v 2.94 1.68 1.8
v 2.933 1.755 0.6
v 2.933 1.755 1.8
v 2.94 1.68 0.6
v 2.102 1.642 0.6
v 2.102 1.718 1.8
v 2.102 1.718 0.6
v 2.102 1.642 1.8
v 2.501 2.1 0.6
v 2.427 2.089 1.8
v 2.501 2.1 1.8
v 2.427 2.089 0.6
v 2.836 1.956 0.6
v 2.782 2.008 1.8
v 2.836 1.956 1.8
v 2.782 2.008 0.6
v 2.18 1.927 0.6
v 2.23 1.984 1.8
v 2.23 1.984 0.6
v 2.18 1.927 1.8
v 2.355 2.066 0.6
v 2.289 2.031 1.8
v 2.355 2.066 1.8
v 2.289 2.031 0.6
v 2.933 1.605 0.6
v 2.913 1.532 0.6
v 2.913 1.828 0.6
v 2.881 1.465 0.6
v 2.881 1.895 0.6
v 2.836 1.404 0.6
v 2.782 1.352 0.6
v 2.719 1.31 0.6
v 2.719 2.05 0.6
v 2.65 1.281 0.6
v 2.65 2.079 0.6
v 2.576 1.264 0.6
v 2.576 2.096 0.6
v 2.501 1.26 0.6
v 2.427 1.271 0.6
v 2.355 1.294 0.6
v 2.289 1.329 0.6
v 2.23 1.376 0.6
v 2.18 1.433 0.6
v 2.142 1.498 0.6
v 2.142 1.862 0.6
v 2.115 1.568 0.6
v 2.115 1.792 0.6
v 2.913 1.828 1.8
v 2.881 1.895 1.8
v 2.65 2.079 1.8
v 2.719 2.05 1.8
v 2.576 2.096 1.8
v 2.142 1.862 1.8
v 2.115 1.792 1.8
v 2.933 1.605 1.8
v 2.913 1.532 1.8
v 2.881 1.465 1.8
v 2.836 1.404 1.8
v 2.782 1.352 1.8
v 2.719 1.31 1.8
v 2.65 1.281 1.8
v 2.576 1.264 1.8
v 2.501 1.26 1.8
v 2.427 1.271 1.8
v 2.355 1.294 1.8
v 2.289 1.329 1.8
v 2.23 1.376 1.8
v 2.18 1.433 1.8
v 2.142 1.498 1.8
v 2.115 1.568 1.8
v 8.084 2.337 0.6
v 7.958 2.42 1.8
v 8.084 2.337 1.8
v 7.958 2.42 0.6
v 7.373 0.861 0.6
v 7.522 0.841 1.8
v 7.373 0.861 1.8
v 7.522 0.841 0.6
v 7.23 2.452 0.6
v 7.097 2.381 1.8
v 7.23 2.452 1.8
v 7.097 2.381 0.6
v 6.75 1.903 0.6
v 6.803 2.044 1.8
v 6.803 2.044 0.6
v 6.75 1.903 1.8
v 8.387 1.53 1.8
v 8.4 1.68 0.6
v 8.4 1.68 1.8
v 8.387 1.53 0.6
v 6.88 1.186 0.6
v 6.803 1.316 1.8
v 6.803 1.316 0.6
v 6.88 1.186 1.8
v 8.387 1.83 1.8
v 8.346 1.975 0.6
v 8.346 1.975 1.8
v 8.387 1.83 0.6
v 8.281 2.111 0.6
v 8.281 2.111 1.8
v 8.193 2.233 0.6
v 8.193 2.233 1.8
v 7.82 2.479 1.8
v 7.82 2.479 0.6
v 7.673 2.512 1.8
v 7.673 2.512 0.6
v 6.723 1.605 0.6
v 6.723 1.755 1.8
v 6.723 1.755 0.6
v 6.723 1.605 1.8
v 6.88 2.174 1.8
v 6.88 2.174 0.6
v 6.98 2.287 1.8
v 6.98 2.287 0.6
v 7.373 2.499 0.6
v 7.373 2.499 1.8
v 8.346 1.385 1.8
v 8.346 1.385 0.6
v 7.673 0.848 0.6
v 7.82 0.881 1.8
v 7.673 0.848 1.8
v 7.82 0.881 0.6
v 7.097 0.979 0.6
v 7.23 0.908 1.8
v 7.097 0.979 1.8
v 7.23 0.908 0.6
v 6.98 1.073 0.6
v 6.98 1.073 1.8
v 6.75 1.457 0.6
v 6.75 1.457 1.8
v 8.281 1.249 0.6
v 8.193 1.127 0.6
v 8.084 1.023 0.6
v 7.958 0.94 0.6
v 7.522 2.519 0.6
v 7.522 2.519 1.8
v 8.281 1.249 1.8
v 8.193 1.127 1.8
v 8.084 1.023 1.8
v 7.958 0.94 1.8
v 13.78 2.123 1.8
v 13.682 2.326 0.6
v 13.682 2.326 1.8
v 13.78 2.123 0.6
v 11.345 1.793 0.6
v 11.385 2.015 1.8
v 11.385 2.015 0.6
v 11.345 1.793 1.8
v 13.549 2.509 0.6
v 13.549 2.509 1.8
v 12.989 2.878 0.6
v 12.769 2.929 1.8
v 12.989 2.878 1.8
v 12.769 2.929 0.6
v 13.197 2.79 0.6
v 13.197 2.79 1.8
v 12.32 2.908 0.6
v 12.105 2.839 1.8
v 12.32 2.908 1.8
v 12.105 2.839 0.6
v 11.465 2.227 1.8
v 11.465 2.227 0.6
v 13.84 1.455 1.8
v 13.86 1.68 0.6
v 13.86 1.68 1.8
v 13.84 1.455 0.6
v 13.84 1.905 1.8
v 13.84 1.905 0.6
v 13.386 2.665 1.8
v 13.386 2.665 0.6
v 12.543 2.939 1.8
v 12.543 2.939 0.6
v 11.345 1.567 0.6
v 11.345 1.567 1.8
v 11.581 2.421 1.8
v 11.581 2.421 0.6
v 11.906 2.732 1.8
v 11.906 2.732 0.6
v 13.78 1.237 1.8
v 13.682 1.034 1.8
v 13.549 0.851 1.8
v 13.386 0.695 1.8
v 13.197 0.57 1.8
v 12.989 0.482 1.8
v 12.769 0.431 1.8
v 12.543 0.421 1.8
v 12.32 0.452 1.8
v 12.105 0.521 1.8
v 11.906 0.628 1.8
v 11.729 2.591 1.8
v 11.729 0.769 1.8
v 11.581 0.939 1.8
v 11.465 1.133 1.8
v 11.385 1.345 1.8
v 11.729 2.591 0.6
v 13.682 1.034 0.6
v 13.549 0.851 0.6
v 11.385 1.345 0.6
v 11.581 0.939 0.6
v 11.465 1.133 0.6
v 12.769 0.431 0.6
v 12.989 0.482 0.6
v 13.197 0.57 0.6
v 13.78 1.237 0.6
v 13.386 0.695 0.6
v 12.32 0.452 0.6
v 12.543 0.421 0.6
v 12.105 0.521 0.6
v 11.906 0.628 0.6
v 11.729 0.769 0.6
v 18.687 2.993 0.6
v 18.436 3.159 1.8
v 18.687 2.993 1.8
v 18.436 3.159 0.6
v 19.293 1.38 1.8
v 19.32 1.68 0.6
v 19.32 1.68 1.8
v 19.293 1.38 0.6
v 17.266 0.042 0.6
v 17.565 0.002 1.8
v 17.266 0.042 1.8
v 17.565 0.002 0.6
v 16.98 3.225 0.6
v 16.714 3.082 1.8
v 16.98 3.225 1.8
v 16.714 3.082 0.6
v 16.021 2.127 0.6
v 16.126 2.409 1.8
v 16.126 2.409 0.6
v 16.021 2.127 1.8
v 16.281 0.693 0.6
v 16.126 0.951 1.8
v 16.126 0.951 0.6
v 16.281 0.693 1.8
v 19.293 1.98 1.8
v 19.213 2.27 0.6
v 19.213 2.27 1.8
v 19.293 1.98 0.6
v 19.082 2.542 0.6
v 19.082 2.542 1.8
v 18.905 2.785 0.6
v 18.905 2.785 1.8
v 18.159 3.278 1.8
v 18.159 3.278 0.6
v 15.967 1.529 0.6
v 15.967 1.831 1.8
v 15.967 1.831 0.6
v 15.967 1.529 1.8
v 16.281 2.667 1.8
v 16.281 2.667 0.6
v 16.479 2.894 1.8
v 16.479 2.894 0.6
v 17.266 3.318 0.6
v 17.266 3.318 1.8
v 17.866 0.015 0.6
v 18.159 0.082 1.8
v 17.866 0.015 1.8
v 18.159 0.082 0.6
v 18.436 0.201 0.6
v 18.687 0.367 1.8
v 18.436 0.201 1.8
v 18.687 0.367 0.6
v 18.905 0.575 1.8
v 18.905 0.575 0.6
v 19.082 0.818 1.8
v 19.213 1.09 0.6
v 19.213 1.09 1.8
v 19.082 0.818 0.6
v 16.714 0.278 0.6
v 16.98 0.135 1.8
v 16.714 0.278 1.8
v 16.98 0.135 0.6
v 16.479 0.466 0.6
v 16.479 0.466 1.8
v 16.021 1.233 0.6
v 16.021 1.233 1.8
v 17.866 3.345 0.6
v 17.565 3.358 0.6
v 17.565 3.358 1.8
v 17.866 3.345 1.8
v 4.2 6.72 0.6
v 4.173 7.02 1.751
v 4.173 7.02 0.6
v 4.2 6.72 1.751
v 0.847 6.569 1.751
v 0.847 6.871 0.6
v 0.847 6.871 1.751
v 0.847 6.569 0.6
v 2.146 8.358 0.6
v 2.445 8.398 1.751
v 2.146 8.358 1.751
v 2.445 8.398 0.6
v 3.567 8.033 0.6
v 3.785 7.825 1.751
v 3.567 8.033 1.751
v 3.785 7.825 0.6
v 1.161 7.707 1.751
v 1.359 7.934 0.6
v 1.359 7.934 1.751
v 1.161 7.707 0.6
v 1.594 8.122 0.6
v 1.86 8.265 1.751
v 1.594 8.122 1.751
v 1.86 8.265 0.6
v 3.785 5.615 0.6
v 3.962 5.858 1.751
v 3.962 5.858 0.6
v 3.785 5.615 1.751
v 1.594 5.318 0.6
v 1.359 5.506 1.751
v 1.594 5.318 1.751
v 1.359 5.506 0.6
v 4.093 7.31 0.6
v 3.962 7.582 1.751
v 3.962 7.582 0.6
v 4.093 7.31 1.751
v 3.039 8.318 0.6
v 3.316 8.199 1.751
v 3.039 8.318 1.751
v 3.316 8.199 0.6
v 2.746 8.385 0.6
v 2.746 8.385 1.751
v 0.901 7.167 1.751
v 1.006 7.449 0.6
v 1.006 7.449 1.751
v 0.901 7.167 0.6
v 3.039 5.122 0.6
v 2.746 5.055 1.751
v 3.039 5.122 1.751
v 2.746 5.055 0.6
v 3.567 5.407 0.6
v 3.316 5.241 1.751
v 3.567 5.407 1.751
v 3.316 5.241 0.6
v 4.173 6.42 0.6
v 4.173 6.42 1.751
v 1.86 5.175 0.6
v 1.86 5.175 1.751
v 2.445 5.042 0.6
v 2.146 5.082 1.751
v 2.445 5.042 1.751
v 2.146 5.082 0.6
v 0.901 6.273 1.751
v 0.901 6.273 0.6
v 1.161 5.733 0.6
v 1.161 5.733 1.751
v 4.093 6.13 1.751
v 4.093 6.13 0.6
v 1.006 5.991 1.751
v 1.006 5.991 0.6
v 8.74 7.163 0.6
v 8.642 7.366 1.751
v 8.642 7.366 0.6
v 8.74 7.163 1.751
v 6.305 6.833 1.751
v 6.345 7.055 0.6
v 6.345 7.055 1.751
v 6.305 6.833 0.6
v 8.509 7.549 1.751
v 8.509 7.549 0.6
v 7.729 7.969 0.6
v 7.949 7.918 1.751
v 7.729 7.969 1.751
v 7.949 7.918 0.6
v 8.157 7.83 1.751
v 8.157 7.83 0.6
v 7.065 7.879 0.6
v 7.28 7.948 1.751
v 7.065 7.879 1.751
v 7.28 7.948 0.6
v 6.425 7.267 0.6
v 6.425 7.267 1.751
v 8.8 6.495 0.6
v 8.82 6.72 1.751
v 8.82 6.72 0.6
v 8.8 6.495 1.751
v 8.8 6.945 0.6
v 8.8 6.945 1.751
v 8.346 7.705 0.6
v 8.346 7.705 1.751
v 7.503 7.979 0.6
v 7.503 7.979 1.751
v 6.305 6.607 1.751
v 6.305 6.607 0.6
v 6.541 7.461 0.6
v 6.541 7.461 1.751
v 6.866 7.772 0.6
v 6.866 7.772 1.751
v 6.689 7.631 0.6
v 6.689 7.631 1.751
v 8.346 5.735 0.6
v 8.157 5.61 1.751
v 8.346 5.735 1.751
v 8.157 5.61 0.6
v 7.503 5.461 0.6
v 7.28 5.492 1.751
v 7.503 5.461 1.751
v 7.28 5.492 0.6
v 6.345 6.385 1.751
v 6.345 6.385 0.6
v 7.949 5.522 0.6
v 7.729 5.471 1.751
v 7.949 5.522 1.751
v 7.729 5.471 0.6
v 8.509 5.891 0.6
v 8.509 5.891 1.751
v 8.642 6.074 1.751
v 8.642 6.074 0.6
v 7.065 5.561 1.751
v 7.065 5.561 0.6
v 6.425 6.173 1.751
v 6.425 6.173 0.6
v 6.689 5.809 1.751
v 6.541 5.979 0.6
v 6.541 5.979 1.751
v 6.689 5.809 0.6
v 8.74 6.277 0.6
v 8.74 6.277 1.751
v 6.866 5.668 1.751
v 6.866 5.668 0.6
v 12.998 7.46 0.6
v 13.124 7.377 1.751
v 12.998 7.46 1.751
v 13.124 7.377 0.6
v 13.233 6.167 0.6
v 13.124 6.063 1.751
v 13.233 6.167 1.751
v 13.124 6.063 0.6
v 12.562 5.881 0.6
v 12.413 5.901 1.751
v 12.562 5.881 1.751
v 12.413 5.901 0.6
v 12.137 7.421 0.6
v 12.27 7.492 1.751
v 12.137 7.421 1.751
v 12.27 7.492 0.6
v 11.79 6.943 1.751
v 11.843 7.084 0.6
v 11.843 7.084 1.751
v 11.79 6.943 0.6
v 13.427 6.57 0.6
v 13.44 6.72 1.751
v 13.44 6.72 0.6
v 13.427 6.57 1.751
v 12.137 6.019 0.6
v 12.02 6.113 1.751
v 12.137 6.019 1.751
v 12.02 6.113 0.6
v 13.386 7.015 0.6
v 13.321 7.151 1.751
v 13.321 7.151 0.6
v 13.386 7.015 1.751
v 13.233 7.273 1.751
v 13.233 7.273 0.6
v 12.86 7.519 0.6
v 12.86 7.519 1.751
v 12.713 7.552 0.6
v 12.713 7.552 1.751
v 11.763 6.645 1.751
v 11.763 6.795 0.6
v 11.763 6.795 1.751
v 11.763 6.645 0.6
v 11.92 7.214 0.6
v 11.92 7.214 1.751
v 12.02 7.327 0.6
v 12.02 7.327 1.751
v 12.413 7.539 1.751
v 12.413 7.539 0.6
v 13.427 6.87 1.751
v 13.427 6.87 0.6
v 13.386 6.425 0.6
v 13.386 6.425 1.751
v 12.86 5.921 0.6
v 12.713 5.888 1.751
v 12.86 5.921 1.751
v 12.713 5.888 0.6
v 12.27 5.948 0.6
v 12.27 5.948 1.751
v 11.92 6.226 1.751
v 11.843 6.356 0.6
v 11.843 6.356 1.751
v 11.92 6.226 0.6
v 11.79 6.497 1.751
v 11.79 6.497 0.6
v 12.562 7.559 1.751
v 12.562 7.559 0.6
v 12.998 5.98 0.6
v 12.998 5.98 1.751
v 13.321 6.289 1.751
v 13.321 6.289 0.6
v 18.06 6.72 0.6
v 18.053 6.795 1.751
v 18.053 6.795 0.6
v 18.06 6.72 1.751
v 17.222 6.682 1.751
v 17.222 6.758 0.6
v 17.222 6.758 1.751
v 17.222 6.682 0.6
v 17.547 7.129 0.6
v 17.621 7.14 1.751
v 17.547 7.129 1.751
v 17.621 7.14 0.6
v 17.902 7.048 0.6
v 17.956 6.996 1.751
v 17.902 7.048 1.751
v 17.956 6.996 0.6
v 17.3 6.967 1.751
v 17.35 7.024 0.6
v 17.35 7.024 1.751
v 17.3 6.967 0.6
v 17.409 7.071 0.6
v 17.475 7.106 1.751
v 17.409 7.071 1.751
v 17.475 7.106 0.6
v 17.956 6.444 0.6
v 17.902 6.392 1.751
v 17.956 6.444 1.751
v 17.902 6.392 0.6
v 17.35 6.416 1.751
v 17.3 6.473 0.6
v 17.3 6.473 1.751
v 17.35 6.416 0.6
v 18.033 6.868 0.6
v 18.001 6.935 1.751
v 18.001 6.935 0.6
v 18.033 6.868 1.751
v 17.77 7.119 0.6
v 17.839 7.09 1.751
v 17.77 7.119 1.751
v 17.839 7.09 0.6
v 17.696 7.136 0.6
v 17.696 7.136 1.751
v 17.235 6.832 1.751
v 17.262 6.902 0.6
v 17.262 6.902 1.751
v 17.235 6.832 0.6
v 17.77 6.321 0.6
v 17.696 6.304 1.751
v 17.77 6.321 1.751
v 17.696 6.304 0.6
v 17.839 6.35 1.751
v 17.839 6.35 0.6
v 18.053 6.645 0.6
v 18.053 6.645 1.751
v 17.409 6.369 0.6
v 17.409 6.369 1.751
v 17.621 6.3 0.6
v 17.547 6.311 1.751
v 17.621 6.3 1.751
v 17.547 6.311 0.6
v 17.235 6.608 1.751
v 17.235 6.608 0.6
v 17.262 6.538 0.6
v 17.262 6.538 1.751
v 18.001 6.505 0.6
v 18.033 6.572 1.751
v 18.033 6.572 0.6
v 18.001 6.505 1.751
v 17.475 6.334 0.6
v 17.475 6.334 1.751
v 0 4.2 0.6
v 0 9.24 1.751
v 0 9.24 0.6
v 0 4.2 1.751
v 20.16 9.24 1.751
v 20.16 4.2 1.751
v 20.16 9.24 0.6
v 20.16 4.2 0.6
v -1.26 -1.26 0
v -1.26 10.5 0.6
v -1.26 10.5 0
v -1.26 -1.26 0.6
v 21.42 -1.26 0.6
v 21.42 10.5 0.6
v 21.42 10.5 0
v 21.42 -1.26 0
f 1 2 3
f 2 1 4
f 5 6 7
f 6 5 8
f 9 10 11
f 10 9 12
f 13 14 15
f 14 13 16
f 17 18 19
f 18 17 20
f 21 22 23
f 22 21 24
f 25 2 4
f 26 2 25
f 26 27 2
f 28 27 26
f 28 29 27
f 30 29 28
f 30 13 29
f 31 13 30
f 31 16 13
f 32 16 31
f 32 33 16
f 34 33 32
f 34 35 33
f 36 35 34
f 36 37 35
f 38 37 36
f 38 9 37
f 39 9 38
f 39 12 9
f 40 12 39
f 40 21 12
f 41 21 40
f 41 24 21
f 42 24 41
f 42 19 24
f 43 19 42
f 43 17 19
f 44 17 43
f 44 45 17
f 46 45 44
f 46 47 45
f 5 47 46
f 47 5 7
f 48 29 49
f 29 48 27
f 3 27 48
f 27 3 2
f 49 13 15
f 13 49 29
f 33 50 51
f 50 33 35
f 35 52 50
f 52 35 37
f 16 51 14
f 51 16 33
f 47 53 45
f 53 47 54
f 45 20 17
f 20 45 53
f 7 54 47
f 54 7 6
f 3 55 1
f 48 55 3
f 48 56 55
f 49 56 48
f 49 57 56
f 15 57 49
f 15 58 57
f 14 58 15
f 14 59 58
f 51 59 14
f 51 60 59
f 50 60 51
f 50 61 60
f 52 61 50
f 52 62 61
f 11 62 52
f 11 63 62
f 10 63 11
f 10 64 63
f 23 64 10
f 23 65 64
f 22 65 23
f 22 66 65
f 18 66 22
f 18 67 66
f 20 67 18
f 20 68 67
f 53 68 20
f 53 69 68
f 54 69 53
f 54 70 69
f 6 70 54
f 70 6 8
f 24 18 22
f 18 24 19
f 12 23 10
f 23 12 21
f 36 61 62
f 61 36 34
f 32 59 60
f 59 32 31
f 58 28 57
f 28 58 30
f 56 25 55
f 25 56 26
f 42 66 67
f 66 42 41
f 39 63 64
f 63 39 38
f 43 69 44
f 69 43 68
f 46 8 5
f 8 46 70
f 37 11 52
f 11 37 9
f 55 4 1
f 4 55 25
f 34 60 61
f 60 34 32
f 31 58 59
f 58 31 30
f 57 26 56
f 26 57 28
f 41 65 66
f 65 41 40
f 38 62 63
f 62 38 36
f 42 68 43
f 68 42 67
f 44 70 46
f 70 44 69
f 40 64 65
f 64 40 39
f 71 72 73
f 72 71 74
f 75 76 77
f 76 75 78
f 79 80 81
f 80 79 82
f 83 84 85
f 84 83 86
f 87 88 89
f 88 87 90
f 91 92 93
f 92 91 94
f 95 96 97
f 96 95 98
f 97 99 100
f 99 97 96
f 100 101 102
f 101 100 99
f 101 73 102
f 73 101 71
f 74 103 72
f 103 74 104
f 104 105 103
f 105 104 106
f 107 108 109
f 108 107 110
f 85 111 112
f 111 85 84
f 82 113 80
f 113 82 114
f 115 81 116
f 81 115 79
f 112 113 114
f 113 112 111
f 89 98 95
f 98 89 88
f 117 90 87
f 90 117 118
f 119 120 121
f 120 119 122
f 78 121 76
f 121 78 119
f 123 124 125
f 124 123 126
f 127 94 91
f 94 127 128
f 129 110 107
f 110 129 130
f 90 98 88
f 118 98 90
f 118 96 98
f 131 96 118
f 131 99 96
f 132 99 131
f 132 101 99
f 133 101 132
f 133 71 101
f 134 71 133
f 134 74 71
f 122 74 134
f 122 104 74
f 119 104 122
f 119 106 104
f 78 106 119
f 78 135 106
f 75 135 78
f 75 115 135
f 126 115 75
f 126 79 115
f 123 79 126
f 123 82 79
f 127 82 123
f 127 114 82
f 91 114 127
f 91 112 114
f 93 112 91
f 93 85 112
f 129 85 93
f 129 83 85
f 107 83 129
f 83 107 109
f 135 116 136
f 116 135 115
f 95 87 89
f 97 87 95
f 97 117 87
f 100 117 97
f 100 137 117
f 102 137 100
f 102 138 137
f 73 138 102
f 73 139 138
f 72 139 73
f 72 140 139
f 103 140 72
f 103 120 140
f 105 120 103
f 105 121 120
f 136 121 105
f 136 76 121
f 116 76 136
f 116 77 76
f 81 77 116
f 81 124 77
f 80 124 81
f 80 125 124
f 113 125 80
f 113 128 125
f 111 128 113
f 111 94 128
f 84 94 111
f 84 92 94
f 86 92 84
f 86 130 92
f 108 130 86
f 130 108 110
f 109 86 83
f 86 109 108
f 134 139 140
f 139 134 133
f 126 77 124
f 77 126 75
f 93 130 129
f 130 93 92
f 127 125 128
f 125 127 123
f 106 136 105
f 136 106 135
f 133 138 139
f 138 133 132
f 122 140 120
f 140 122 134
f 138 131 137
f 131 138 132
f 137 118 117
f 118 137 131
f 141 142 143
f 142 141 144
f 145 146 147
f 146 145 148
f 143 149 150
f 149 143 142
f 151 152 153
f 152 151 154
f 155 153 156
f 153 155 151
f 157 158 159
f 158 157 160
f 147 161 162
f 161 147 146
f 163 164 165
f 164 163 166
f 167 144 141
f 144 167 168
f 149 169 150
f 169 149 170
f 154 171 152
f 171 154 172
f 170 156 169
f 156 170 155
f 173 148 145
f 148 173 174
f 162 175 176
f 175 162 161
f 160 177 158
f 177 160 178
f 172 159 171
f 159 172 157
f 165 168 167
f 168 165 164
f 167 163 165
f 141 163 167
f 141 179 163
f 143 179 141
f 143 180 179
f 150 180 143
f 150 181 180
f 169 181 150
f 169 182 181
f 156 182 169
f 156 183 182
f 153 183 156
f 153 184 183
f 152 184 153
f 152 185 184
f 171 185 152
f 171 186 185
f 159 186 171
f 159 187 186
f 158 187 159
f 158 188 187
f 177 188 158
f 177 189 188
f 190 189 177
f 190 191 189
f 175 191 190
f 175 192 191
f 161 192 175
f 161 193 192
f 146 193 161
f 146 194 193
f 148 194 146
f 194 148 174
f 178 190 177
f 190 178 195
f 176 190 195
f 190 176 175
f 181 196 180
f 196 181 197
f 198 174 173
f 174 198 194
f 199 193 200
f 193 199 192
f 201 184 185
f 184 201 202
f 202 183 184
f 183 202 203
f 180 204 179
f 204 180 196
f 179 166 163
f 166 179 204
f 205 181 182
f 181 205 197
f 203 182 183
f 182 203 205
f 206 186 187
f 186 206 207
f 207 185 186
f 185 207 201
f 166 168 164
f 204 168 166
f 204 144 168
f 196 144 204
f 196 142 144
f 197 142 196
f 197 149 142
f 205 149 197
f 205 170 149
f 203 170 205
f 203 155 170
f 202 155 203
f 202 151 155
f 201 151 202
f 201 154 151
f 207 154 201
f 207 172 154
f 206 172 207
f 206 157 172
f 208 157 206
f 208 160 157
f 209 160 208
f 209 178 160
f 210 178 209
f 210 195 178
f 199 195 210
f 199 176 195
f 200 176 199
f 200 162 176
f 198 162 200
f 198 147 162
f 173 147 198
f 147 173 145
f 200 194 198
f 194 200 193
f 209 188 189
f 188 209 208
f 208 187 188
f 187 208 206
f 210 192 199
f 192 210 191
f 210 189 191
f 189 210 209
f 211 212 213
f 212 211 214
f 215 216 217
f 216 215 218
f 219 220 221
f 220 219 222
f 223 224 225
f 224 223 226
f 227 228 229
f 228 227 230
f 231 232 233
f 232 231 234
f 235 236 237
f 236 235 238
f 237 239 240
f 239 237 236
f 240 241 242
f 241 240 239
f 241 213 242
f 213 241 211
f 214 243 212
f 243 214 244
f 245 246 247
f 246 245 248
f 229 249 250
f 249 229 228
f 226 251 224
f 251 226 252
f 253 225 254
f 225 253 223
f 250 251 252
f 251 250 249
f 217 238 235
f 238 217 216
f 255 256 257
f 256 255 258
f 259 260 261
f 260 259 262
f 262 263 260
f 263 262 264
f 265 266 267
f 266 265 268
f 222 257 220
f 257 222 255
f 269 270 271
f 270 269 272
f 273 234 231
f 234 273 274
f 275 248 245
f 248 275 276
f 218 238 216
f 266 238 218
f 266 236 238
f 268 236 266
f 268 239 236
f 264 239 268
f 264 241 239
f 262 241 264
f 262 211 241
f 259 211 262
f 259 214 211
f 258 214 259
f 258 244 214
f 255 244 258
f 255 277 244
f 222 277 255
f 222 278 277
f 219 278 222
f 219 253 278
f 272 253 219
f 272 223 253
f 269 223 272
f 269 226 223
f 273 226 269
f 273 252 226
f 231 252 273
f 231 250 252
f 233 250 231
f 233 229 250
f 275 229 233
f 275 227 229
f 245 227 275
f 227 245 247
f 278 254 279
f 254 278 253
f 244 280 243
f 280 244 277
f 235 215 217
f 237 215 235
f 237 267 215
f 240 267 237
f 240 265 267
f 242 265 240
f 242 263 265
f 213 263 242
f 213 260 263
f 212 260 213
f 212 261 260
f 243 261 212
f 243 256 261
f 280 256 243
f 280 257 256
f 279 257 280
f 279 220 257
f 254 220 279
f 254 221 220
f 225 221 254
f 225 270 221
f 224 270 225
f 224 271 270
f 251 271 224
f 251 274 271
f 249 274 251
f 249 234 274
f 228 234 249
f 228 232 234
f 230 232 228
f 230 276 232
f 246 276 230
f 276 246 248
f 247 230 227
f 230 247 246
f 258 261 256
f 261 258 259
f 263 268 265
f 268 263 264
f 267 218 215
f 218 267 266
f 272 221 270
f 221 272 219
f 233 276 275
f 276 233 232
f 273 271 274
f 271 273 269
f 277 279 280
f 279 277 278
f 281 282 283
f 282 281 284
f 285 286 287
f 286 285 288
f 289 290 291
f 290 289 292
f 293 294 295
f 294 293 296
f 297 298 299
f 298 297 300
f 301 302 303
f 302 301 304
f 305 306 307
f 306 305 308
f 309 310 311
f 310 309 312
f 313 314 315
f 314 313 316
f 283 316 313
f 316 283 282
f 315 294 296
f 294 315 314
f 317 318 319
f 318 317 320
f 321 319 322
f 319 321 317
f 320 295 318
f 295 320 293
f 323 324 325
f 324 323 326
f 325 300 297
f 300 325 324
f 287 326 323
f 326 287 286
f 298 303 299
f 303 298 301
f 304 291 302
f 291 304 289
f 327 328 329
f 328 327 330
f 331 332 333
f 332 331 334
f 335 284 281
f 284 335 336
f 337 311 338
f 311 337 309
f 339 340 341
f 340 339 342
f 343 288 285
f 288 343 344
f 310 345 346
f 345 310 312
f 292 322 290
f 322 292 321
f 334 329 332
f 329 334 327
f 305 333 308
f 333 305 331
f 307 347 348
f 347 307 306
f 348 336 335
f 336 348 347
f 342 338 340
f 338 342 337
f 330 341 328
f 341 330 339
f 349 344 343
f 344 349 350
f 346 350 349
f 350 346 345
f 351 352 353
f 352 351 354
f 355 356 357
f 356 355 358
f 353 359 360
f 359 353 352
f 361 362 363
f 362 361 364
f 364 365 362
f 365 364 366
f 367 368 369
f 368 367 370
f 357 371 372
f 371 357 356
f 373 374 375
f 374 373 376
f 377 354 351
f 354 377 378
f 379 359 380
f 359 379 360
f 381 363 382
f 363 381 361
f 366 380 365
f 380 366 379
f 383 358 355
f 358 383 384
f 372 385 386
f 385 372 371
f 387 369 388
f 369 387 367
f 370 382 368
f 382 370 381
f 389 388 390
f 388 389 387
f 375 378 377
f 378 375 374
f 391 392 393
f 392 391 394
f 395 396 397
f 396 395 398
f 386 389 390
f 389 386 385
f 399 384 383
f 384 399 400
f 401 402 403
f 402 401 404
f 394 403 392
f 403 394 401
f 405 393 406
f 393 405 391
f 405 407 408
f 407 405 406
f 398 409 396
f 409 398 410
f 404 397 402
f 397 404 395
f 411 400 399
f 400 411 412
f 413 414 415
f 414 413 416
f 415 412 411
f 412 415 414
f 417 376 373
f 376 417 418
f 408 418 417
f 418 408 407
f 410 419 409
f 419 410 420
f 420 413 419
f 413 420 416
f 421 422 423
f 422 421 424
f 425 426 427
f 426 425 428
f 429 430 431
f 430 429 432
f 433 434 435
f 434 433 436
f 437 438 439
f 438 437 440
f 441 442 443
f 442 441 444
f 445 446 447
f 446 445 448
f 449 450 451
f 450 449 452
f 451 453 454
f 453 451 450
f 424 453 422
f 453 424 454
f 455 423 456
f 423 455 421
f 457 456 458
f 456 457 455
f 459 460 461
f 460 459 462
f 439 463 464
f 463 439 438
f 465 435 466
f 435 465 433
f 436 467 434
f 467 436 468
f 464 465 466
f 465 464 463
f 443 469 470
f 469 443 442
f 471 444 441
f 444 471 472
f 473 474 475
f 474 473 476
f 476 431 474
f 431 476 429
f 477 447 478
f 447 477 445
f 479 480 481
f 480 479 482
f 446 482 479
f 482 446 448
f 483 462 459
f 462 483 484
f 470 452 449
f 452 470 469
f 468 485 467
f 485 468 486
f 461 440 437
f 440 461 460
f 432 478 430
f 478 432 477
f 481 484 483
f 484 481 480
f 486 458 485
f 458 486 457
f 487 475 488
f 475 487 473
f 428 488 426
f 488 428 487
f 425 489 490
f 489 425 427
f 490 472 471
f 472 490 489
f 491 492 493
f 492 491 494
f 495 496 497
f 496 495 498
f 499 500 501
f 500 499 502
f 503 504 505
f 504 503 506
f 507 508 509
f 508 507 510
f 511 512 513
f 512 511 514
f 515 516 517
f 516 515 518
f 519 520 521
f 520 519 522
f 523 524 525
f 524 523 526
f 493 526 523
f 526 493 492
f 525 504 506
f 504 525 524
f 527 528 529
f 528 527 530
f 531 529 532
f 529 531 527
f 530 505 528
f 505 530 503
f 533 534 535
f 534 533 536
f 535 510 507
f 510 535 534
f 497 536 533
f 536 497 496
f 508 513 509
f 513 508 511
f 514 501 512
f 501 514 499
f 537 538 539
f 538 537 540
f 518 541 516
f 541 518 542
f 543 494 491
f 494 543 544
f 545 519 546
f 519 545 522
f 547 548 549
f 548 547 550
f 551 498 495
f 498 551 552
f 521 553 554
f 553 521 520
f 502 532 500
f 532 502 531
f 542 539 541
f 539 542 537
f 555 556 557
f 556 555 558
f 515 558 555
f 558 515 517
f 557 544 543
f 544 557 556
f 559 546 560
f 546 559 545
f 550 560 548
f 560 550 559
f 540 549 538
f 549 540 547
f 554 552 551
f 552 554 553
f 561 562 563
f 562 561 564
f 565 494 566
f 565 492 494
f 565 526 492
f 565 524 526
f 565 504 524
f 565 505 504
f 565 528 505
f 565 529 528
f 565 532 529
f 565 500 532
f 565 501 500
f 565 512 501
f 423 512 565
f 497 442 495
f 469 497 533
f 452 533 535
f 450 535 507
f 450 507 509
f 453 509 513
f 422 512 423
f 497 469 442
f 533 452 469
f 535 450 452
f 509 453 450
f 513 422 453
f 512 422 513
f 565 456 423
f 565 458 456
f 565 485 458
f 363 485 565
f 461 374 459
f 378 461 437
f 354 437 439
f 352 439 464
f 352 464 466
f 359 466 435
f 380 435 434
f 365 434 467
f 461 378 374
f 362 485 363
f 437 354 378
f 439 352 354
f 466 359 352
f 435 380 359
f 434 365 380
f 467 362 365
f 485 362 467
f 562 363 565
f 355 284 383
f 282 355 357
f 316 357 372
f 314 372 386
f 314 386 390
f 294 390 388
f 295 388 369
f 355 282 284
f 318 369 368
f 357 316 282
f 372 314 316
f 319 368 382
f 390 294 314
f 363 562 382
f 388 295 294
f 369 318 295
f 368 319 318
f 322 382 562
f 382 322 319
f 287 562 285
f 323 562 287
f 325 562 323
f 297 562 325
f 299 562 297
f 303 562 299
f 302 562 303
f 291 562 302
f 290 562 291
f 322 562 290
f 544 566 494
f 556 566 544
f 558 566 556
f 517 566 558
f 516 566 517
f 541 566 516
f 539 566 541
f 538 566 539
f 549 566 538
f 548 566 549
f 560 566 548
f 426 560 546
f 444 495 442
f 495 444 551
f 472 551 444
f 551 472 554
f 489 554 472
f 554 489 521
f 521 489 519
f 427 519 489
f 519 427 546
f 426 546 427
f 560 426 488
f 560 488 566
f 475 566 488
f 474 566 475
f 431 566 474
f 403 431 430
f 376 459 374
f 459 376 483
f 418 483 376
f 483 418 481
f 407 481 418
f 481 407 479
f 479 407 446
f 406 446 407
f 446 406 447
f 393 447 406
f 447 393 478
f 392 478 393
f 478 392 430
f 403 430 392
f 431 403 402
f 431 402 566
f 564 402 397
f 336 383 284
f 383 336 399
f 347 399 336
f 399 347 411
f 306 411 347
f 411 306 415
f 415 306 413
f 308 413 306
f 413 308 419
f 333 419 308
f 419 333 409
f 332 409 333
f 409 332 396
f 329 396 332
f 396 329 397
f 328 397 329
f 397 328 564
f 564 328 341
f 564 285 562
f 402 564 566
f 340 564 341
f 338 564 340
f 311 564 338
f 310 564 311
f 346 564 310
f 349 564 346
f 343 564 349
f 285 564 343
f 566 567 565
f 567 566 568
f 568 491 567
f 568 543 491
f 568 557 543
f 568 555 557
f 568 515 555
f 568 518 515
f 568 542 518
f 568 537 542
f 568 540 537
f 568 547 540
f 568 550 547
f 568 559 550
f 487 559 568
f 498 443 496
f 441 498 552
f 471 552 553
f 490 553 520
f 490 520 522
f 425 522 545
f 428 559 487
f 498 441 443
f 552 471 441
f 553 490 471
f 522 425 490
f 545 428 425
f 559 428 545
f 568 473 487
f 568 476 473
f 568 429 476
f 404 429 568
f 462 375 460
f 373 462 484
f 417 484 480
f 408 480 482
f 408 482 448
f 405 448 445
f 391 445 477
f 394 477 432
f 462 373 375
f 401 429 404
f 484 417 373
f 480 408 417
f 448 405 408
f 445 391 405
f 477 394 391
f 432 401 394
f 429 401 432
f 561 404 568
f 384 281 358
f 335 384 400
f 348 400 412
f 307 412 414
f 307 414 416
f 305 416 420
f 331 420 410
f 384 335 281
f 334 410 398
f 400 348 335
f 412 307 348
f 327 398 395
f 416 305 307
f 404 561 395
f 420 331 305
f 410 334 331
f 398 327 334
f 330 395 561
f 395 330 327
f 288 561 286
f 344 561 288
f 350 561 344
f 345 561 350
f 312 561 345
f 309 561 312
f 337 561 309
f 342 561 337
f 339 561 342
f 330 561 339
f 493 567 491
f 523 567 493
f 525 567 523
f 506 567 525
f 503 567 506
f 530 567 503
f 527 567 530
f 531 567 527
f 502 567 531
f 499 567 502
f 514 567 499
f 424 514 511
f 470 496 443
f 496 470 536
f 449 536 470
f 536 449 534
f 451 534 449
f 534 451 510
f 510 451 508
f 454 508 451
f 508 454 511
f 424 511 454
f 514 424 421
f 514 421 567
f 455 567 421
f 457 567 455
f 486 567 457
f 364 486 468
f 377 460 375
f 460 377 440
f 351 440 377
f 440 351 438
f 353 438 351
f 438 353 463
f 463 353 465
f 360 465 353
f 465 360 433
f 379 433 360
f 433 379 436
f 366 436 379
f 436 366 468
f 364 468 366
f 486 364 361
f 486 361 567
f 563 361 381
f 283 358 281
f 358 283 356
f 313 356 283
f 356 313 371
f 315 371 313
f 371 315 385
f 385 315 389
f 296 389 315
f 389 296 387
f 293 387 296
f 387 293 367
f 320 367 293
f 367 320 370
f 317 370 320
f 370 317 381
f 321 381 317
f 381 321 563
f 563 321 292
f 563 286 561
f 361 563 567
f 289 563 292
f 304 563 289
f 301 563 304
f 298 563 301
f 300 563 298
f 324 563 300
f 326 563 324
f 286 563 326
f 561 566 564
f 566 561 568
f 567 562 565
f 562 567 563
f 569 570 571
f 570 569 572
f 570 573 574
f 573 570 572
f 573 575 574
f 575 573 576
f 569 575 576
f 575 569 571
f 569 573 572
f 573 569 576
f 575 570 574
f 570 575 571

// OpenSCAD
include <../3d-printer-testing-suite.scad>

/* [Hidden] */
color_scheme = ["lightblue"];
test_type = "peg_hole";
